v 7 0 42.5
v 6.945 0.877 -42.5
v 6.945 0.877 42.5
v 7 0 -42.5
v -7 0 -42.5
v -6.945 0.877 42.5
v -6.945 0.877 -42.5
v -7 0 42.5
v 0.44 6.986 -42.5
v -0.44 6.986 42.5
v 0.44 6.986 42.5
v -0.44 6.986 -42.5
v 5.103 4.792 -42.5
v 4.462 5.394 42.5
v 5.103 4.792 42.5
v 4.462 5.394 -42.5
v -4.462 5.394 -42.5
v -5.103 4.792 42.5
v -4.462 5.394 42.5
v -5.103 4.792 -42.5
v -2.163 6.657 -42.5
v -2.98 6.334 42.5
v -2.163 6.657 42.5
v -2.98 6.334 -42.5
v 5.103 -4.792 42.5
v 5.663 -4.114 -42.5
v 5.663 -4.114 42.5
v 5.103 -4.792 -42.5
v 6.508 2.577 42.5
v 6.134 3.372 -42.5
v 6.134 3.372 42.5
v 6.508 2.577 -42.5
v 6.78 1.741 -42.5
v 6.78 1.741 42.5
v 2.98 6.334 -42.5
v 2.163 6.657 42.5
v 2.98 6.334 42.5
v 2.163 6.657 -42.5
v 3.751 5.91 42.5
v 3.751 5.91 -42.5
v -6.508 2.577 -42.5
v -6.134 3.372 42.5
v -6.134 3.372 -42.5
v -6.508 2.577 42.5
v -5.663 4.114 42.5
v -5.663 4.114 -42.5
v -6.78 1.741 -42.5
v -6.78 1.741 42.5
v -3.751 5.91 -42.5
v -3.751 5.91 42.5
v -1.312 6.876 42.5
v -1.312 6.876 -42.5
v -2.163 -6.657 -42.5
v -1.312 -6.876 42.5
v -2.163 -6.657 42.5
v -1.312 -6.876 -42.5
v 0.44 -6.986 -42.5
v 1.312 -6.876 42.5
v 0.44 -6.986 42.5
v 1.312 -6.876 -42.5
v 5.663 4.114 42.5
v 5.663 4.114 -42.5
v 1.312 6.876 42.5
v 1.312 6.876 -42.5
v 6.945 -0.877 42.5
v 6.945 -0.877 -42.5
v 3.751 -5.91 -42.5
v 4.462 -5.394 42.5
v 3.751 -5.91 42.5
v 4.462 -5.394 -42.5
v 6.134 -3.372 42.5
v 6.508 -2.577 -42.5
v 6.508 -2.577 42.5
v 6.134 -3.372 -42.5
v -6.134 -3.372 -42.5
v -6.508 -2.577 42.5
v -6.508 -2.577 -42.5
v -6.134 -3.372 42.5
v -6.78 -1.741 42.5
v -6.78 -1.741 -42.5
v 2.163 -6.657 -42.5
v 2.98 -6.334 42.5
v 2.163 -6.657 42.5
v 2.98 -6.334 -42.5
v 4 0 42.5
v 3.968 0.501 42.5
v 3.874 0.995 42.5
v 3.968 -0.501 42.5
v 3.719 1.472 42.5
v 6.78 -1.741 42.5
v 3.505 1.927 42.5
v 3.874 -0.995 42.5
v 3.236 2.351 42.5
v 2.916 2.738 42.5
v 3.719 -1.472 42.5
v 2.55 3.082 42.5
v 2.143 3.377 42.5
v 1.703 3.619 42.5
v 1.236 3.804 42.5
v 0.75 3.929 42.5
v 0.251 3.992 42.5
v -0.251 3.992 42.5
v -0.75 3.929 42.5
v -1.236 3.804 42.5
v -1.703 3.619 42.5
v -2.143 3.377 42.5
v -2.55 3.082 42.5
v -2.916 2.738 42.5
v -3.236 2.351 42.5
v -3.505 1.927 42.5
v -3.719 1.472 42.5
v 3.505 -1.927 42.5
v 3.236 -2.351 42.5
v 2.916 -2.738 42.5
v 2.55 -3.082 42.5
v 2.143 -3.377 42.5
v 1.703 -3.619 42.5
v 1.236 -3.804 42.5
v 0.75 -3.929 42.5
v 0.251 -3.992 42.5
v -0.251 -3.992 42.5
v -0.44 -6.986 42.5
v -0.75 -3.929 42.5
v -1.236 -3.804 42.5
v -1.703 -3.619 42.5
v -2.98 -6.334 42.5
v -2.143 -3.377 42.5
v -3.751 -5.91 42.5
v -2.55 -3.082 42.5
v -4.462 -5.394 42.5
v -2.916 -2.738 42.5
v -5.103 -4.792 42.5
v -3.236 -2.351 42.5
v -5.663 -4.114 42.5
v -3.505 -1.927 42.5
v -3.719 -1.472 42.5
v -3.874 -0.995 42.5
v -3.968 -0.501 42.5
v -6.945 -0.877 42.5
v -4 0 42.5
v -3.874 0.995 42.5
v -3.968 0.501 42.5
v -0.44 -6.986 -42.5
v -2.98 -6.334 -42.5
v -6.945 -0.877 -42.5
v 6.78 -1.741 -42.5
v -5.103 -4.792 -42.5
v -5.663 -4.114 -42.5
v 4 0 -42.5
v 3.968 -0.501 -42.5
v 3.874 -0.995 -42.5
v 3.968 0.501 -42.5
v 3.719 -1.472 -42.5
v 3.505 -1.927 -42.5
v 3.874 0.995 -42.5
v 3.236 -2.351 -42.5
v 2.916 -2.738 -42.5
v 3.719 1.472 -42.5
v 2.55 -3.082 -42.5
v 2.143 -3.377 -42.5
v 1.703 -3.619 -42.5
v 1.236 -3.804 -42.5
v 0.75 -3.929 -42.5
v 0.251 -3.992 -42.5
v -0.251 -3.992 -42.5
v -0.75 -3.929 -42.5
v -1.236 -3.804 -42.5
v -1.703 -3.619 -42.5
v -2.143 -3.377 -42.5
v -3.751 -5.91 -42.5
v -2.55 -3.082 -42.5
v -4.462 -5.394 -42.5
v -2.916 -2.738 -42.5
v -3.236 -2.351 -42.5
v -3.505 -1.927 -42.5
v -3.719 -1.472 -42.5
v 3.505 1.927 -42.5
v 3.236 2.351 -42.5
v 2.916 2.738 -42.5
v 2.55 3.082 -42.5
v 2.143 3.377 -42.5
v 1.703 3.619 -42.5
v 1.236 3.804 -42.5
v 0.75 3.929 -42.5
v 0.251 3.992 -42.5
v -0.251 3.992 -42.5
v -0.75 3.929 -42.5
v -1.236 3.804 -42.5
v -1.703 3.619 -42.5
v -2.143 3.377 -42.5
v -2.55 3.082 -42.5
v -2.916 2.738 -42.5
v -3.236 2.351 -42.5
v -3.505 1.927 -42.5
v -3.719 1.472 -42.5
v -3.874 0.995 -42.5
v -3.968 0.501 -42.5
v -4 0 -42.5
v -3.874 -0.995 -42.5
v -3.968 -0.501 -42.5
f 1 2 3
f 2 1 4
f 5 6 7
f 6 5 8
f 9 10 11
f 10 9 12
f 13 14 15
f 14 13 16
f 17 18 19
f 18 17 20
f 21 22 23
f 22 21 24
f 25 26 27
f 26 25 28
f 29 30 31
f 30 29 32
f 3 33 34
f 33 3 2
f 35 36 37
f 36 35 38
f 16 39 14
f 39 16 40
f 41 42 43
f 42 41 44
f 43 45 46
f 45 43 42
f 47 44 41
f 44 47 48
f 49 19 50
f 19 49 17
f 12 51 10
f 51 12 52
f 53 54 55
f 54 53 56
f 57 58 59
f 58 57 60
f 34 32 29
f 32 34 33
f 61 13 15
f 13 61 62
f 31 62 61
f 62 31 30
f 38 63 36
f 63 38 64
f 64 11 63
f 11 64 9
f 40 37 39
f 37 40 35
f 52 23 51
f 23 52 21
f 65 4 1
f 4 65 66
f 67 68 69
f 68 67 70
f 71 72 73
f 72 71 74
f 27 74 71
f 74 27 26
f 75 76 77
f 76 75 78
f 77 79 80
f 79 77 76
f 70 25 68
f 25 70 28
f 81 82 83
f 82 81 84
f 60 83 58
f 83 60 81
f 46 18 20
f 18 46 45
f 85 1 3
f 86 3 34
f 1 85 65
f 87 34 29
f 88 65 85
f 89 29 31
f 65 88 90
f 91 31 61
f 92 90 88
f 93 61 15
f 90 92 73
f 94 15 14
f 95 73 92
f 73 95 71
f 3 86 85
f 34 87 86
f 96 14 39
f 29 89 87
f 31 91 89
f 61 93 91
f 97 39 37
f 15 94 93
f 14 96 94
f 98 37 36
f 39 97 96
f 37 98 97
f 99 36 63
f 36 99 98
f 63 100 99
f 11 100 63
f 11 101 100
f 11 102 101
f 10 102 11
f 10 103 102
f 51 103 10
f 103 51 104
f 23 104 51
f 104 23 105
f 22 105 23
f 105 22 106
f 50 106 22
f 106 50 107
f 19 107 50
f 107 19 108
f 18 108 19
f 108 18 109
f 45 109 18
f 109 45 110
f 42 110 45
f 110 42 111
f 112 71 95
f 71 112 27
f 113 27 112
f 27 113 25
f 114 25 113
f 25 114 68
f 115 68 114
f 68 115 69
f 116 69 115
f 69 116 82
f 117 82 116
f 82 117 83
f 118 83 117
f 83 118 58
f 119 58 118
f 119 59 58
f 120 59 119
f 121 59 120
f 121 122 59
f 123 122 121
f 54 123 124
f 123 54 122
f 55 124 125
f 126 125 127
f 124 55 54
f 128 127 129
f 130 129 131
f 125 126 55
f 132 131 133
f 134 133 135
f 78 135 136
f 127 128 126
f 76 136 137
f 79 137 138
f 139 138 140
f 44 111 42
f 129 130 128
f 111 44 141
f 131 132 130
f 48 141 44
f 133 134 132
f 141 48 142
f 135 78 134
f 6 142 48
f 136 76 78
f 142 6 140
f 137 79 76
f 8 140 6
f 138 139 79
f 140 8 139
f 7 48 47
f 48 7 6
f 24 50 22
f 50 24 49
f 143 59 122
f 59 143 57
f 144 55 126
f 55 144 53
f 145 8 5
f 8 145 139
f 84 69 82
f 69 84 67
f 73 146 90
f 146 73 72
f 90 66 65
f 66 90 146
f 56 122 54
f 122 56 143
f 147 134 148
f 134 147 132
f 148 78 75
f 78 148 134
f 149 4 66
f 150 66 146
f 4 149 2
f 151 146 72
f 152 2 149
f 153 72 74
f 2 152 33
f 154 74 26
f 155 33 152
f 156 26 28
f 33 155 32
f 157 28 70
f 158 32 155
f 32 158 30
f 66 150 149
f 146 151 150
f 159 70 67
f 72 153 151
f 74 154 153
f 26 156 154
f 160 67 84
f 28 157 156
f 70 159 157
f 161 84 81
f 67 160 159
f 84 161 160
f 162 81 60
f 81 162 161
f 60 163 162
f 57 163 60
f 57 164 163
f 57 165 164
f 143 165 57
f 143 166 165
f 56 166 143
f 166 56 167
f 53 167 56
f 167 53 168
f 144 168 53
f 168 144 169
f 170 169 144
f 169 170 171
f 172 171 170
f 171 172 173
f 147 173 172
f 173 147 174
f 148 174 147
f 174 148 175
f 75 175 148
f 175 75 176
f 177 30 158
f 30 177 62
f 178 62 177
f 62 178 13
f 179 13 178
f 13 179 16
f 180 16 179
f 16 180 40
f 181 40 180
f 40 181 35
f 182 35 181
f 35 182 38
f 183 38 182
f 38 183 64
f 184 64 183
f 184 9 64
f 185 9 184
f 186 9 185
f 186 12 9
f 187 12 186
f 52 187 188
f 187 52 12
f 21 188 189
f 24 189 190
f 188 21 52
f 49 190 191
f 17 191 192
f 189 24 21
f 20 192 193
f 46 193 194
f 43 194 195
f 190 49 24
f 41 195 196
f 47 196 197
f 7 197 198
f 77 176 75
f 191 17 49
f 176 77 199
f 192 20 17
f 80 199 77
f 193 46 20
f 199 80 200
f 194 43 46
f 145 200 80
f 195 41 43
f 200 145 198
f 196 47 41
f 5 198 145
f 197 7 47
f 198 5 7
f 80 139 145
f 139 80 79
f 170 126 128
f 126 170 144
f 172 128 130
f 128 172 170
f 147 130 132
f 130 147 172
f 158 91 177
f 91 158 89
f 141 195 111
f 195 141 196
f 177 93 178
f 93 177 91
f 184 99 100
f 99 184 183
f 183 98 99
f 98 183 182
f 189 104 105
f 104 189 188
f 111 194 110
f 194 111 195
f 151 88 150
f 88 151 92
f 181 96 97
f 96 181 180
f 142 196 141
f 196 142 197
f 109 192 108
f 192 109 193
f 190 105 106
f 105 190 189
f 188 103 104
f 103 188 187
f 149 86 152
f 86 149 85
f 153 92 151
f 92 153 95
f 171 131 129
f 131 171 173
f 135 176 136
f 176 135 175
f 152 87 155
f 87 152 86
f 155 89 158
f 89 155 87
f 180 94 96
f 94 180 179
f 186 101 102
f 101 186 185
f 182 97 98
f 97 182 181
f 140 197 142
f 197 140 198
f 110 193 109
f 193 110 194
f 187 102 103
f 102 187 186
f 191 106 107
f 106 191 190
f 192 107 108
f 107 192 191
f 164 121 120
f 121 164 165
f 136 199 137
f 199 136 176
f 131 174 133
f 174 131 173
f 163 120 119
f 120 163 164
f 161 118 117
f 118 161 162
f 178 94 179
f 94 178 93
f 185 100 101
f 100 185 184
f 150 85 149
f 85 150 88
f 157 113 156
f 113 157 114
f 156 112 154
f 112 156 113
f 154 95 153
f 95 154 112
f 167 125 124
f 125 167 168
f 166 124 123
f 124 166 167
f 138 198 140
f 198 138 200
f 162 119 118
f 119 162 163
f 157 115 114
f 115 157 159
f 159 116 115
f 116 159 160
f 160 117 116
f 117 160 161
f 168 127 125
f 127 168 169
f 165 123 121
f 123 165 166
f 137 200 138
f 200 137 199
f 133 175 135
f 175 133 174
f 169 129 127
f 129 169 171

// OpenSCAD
$fn = 50;


difference() {
	union() {
		translate(v = [0, 0, -42.5000000000]) {
			cylinder(h = 85, r = 7.0000000000);
		}
	}
	union() {
		translate(v = [0, 0, -100.0000000000]) {
			cylinder(h = 200, r = 4.0000000000);
		}
	}
}
